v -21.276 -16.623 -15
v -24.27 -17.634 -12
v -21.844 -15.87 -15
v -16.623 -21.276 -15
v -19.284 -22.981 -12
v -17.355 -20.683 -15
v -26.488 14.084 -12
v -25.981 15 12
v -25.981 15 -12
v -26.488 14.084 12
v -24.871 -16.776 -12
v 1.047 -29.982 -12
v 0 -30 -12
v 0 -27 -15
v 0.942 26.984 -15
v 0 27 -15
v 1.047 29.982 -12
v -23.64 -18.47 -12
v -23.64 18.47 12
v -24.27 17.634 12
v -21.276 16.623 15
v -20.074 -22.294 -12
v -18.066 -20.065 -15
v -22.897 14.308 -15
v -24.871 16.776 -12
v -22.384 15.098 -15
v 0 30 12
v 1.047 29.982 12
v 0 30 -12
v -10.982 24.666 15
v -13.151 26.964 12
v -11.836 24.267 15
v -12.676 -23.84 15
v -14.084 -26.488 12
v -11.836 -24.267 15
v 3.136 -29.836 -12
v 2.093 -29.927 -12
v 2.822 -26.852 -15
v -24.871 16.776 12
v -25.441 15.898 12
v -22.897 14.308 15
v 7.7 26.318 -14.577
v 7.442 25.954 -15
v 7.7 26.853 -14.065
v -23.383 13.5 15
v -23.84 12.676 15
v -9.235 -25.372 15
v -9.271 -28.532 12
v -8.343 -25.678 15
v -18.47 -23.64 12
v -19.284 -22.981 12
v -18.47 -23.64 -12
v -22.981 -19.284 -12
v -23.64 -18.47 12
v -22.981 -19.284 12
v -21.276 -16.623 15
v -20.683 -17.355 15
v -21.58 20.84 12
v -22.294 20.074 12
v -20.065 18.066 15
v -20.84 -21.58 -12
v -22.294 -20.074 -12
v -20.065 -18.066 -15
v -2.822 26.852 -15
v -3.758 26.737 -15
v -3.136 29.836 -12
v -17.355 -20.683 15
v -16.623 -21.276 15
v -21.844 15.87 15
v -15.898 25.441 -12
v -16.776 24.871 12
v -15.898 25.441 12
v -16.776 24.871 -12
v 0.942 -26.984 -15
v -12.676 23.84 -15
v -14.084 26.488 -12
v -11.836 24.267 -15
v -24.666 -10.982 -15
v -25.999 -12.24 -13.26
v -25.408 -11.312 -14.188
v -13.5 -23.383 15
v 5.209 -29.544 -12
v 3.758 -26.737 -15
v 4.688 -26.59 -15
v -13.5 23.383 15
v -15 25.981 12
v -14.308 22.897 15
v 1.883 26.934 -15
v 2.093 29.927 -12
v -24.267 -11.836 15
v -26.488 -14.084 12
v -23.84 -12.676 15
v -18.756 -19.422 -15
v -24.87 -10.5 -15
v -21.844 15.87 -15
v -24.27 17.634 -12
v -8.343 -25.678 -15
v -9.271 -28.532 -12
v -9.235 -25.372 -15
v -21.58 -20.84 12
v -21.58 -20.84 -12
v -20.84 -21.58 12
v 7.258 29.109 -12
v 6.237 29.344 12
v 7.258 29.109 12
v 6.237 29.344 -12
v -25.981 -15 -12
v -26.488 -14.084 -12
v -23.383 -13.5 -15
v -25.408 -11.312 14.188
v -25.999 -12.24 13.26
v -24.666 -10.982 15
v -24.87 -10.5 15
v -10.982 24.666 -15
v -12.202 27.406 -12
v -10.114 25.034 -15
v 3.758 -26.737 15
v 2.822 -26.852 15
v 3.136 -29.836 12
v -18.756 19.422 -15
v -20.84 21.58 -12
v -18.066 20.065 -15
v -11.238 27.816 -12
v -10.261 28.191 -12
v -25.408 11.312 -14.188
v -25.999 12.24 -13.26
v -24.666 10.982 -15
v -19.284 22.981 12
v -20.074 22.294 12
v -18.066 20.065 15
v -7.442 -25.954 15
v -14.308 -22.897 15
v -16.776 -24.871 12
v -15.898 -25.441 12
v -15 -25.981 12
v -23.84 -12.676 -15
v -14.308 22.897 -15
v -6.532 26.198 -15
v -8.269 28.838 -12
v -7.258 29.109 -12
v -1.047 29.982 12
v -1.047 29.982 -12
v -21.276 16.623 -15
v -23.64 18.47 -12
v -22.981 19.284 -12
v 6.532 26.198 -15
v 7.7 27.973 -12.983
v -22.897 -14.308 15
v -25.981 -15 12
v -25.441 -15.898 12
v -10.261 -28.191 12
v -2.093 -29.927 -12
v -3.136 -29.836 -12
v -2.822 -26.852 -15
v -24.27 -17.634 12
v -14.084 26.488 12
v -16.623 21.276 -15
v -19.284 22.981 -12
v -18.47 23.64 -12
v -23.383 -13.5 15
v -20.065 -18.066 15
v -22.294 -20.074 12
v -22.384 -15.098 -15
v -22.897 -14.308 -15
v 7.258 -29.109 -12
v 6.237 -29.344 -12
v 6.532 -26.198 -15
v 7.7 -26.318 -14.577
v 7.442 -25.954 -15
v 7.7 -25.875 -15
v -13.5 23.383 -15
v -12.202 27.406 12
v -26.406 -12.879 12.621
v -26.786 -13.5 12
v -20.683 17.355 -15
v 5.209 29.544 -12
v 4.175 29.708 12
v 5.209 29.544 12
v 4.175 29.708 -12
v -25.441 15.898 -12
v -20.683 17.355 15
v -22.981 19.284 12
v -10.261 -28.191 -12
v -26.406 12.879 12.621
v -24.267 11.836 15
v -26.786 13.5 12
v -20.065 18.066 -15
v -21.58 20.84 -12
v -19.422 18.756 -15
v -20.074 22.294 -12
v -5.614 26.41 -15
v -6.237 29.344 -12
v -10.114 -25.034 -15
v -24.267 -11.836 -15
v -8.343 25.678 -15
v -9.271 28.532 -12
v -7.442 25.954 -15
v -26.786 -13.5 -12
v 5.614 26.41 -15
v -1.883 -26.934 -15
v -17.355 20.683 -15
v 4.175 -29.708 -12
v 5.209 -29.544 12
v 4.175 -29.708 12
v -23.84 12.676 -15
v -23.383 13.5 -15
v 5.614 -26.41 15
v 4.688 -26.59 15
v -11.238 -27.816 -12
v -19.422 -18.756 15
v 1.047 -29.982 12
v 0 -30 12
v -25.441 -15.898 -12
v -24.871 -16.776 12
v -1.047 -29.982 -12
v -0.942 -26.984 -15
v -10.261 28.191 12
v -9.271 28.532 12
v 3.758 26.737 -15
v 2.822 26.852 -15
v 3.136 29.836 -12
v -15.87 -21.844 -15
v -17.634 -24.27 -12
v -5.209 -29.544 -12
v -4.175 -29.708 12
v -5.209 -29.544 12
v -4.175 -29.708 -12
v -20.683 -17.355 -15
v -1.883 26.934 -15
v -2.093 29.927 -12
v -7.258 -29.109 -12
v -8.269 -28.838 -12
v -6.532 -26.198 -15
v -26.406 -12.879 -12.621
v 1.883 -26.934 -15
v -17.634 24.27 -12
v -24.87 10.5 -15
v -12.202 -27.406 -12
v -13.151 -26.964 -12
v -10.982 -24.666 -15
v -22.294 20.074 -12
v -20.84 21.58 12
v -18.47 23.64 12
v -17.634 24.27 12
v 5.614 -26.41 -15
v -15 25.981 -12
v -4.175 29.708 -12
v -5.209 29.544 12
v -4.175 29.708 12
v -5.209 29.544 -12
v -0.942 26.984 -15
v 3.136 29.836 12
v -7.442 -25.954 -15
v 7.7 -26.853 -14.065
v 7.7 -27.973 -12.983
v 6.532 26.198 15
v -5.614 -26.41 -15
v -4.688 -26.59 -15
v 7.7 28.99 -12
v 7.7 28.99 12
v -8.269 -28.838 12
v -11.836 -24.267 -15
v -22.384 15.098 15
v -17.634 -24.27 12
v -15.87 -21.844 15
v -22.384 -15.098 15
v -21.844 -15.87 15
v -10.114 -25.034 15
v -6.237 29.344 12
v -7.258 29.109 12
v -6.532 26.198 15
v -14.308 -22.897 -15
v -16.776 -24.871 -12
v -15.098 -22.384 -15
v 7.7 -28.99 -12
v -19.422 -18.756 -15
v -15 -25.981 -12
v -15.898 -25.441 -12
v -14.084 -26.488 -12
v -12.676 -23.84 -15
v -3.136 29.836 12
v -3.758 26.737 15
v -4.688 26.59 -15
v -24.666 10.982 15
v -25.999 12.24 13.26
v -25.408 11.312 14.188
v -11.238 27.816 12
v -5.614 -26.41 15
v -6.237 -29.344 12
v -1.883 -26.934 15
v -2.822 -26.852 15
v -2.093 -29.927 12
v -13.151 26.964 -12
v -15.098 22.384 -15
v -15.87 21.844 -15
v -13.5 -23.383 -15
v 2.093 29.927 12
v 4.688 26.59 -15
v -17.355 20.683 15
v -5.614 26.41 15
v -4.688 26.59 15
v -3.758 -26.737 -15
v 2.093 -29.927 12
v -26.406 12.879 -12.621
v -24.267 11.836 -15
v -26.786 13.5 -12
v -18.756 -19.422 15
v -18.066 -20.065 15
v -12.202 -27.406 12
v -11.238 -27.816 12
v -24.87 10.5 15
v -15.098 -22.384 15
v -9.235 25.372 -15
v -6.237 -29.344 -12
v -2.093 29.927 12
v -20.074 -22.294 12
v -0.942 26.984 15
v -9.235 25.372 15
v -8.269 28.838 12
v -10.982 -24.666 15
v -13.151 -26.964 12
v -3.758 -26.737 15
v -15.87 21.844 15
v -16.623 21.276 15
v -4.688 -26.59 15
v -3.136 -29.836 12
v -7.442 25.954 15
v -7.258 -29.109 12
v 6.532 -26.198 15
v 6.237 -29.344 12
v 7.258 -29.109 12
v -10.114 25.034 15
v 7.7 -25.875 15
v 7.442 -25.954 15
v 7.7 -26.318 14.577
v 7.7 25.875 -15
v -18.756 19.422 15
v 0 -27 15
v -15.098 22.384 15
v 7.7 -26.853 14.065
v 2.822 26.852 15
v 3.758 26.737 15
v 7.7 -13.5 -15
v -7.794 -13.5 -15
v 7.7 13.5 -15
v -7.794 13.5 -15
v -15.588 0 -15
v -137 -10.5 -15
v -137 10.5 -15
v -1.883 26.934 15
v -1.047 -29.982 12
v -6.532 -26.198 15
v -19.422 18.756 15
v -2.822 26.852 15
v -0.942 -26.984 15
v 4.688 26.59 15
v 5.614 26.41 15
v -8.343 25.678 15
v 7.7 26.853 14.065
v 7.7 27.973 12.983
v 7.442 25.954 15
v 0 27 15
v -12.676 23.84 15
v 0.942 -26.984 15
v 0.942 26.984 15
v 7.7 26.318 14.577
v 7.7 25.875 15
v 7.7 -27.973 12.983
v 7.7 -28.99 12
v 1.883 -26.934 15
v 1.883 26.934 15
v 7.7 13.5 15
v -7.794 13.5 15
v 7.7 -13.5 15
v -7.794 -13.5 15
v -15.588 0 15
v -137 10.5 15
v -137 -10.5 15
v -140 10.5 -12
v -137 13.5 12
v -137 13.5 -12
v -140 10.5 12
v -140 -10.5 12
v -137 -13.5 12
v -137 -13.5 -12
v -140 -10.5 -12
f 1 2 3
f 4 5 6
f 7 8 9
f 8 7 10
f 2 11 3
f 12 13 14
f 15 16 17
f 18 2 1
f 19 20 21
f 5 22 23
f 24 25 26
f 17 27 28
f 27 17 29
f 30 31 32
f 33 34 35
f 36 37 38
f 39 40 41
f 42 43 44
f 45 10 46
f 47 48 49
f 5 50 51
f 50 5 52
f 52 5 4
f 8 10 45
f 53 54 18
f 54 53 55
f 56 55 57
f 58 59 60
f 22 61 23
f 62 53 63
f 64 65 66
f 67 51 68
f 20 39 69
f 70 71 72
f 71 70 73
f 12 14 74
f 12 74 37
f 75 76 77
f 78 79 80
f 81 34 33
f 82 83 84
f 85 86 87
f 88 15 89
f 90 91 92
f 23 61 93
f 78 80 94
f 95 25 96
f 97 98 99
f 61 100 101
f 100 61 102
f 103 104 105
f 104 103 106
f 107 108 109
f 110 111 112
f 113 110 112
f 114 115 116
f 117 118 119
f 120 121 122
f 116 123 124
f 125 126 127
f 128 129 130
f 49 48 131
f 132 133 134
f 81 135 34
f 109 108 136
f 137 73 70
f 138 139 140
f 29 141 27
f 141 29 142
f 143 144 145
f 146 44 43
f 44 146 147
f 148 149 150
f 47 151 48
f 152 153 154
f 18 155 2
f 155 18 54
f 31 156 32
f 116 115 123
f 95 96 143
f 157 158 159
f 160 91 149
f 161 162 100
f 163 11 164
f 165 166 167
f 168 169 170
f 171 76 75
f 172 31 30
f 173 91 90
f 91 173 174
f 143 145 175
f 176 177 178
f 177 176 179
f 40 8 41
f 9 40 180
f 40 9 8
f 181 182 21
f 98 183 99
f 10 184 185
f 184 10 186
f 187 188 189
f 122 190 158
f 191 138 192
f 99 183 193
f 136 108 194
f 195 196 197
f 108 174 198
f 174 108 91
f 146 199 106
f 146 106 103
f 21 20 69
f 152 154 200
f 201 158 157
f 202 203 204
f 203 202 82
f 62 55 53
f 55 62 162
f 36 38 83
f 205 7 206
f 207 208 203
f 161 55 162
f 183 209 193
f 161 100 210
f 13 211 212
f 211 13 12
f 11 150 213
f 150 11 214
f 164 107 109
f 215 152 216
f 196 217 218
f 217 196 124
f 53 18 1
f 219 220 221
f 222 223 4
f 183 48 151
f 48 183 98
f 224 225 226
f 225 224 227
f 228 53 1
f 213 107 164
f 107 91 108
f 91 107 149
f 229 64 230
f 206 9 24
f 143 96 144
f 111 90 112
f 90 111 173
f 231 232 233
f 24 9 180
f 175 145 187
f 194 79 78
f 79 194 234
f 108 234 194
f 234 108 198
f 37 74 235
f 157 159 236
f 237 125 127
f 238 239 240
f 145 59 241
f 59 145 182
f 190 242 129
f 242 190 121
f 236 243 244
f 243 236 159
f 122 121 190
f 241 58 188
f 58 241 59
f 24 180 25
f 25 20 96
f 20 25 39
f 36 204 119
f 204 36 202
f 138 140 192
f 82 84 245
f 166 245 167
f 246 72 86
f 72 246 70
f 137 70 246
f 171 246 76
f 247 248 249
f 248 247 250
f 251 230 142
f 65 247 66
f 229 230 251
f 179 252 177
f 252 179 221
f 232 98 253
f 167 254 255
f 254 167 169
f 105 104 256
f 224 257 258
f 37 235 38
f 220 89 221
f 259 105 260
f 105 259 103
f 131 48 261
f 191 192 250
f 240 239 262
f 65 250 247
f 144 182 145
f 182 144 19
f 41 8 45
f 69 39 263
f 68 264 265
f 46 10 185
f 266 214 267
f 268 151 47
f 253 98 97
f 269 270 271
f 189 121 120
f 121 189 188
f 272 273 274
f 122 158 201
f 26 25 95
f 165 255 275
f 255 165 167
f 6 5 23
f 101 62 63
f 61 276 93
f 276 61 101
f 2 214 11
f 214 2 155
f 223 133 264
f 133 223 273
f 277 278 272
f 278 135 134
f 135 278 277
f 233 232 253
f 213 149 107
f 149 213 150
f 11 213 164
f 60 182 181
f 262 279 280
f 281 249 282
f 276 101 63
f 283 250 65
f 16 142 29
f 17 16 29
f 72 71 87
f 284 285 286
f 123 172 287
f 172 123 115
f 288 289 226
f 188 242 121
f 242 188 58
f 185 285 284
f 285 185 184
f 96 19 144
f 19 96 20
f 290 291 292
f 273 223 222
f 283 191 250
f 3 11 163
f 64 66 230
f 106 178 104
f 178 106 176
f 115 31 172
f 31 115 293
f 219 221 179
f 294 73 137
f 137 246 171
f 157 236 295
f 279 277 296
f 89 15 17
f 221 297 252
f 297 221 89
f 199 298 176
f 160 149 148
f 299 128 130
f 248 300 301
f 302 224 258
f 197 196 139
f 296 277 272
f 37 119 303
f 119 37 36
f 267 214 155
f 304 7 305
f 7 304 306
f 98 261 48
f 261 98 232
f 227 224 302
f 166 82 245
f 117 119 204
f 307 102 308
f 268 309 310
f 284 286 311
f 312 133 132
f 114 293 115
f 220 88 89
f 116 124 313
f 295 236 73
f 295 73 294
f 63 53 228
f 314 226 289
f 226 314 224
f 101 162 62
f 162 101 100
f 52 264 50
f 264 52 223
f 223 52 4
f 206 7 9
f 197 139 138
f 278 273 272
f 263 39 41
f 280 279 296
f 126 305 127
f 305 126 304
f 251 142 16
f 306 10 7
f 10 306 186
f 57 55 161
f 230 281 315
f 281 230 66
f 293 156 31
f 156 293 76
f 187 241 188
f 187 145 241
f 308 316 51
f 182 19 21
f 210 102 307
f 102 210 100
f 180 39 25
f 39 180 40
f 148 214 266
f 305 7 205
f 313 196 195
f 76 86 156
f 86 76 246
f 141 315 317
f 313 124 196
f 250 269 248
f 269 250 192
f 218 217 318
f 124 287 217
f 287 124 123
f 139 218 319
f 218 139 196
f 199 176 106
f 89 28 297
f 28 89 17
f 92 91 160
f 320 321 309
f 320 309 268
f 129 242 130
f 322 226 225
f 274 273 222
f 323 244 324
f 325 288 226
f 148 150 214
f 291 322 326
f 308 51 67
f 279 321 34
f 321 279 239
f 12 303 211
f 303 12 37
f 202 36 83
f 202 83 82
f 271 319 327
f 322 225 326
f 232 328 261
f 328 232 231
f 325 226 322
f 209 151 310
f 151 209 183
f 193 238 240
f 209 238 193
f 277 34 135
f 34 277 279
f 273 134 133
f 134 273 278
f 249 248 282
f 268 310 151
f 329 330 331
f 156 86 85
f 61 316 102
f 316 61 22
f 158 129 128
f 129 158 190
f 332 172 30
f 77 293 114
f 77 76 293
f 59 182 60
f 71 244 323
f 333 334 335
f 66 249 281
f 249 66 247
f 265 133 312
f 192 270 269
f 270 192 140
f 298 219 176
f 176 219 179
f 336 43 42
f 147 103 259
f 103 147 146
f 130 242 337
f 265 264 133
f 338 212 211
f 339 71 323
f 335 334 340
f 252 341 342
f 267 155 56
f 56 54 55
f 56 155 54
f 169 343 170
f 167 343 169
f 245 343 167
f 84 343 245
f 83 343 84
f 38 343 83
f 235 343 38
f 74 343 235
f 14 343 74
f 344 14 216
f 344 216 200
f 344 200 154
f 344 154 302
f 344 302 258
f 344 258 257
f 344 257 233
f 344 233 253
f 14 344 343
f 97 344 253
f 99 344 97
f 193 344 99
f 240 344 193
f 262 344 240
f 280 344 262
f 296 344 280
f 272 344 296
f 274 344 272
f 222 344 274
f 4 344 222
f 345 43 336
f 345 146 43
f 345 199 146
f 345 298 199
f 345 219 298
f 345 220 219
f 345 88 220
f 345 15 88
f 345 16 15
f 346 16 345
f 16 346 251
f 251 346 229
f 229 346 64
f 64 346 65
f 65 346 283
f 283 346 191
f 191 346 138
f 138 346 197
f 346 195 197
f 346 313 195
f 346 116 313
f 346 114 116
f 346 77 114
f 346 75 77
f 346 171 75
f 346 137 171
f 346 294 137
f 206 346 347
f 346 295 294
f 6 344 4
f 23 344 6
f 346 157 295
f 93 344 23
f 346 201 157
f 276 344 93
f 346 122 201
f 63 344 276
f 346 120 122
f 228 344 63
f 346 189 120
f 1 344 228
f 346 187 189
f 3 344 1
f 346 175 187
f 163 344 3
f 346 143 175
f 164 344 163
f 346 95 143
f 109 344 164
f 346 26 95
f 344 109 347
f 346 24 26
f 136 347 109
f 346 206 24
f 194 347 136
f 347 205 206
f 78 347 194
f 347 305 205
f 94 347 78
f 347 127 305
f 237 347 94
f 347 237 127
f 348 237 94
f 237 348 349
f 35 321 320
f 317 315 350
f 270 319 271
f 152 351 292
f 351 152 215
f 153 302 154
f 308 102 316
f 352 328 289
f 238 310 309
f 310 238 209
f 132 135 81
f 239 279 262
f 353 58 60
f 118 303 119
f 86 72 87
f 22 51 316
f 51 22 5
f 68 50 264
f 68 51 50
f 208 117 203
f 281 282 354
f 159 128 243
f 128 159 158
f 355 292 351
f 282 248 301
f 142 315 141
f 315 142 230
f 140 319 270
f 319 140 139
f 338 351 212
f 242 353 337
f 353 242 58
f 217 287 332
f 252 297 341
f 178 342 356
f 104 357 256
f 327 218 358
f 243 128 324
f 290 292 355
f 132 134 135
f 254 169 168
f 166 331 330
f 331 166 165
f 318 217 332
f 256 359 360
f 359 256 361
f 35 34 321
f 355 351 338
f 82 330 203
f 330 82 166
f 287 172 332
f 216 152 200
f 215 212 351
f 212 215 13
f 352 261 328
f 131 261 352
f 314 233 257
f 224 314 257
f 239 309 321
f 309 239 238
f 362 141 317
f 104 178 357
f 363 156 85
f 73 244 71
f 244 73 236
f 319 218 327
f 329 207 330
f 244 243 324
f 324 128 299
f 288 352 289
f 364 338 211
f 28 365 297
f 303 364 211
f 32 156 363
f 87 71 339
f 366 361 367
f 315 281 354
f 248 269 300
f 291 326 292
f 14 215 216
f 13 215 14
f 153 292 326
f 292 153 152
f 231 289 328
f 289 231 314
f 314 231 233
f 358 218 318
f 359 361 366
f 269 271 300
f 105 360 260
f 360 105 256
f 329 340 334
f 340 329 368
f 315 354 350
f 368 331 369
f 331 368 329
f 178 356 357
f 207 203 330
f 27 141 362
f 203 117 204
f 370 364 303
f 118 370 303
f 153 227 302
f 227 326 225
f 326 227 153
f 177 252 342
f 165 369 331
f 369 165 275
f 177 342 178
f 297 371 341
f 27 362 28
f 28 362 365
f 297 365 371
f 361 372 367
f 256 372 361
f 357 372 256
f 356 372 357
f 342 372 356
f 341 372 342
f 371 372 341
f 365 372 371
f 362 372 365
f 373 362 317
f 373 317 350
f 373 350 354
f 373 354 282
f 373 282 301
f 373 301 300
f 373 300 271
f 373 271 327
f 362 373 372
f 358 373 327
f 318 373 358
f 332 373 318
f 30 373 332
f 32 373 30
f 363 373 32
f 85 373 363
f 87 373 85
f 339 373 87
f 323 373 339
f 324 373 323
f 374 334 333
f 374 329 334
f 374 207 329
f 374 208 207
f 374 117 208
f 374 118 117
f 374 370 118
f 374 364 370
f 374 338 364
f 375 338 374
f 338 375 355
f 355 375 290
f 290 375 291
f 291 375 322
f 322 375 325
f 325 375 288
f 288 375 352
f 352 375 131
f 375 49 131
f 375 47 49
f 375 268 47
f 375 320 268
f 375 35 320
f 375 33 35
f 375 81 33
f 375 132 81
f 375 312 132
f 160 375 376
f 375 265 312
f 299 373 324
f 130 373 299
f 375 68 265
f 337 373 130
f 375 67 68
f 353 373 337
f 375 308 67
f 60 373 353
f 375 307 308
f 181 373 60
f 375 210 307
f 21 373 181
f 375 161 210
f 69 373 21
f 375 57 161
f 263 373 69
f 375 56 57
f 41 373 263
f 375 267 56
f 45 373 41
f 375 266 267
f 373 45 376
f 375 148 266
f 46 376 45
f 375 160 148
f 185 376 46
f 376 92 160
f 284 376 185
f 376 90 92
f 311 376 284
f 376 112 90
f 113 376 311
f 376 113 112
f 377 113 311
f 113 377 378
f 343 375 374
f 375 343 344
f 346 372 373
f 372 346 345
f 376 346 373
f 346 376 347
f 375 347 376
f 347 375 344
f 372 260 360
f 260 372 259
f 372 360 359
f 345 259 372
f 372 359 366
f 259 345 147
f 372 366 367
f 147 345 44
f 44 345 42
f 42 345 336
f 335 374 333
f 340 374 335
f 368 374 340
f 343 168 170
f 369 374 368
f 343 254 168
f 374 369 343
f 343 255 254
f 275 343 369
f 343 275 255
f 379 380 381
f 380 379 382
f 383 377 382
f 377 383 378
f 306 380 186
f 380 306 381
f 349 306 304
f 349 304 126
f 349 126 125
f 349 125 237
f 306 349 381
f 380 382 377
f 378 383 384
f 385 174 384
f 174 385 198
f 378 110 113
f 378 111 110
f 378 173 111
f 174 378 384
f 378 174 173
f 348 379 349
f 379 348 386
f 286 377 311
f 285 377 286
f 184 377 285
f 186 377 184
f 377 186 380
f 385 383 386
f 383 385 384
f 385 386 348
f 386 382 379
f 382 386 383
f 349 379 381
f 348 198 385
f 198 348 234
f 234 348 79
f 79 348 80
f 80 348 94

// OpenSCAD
include <BOSL/constants.scad>
use <BOSL/transforms.scad>
use <BOSL/shapes.scad>

$fn=180;

union() {
  right(7.7) left_half() left(7.7) difference() {
    cyl(h=30,d=60,chamfer=3);
    cyl(h=31,d=27,circum=true,$fn=6);
  }
  left(20) cuboid([120,27,30],chamfer=3,align=V_LEFT);
}
